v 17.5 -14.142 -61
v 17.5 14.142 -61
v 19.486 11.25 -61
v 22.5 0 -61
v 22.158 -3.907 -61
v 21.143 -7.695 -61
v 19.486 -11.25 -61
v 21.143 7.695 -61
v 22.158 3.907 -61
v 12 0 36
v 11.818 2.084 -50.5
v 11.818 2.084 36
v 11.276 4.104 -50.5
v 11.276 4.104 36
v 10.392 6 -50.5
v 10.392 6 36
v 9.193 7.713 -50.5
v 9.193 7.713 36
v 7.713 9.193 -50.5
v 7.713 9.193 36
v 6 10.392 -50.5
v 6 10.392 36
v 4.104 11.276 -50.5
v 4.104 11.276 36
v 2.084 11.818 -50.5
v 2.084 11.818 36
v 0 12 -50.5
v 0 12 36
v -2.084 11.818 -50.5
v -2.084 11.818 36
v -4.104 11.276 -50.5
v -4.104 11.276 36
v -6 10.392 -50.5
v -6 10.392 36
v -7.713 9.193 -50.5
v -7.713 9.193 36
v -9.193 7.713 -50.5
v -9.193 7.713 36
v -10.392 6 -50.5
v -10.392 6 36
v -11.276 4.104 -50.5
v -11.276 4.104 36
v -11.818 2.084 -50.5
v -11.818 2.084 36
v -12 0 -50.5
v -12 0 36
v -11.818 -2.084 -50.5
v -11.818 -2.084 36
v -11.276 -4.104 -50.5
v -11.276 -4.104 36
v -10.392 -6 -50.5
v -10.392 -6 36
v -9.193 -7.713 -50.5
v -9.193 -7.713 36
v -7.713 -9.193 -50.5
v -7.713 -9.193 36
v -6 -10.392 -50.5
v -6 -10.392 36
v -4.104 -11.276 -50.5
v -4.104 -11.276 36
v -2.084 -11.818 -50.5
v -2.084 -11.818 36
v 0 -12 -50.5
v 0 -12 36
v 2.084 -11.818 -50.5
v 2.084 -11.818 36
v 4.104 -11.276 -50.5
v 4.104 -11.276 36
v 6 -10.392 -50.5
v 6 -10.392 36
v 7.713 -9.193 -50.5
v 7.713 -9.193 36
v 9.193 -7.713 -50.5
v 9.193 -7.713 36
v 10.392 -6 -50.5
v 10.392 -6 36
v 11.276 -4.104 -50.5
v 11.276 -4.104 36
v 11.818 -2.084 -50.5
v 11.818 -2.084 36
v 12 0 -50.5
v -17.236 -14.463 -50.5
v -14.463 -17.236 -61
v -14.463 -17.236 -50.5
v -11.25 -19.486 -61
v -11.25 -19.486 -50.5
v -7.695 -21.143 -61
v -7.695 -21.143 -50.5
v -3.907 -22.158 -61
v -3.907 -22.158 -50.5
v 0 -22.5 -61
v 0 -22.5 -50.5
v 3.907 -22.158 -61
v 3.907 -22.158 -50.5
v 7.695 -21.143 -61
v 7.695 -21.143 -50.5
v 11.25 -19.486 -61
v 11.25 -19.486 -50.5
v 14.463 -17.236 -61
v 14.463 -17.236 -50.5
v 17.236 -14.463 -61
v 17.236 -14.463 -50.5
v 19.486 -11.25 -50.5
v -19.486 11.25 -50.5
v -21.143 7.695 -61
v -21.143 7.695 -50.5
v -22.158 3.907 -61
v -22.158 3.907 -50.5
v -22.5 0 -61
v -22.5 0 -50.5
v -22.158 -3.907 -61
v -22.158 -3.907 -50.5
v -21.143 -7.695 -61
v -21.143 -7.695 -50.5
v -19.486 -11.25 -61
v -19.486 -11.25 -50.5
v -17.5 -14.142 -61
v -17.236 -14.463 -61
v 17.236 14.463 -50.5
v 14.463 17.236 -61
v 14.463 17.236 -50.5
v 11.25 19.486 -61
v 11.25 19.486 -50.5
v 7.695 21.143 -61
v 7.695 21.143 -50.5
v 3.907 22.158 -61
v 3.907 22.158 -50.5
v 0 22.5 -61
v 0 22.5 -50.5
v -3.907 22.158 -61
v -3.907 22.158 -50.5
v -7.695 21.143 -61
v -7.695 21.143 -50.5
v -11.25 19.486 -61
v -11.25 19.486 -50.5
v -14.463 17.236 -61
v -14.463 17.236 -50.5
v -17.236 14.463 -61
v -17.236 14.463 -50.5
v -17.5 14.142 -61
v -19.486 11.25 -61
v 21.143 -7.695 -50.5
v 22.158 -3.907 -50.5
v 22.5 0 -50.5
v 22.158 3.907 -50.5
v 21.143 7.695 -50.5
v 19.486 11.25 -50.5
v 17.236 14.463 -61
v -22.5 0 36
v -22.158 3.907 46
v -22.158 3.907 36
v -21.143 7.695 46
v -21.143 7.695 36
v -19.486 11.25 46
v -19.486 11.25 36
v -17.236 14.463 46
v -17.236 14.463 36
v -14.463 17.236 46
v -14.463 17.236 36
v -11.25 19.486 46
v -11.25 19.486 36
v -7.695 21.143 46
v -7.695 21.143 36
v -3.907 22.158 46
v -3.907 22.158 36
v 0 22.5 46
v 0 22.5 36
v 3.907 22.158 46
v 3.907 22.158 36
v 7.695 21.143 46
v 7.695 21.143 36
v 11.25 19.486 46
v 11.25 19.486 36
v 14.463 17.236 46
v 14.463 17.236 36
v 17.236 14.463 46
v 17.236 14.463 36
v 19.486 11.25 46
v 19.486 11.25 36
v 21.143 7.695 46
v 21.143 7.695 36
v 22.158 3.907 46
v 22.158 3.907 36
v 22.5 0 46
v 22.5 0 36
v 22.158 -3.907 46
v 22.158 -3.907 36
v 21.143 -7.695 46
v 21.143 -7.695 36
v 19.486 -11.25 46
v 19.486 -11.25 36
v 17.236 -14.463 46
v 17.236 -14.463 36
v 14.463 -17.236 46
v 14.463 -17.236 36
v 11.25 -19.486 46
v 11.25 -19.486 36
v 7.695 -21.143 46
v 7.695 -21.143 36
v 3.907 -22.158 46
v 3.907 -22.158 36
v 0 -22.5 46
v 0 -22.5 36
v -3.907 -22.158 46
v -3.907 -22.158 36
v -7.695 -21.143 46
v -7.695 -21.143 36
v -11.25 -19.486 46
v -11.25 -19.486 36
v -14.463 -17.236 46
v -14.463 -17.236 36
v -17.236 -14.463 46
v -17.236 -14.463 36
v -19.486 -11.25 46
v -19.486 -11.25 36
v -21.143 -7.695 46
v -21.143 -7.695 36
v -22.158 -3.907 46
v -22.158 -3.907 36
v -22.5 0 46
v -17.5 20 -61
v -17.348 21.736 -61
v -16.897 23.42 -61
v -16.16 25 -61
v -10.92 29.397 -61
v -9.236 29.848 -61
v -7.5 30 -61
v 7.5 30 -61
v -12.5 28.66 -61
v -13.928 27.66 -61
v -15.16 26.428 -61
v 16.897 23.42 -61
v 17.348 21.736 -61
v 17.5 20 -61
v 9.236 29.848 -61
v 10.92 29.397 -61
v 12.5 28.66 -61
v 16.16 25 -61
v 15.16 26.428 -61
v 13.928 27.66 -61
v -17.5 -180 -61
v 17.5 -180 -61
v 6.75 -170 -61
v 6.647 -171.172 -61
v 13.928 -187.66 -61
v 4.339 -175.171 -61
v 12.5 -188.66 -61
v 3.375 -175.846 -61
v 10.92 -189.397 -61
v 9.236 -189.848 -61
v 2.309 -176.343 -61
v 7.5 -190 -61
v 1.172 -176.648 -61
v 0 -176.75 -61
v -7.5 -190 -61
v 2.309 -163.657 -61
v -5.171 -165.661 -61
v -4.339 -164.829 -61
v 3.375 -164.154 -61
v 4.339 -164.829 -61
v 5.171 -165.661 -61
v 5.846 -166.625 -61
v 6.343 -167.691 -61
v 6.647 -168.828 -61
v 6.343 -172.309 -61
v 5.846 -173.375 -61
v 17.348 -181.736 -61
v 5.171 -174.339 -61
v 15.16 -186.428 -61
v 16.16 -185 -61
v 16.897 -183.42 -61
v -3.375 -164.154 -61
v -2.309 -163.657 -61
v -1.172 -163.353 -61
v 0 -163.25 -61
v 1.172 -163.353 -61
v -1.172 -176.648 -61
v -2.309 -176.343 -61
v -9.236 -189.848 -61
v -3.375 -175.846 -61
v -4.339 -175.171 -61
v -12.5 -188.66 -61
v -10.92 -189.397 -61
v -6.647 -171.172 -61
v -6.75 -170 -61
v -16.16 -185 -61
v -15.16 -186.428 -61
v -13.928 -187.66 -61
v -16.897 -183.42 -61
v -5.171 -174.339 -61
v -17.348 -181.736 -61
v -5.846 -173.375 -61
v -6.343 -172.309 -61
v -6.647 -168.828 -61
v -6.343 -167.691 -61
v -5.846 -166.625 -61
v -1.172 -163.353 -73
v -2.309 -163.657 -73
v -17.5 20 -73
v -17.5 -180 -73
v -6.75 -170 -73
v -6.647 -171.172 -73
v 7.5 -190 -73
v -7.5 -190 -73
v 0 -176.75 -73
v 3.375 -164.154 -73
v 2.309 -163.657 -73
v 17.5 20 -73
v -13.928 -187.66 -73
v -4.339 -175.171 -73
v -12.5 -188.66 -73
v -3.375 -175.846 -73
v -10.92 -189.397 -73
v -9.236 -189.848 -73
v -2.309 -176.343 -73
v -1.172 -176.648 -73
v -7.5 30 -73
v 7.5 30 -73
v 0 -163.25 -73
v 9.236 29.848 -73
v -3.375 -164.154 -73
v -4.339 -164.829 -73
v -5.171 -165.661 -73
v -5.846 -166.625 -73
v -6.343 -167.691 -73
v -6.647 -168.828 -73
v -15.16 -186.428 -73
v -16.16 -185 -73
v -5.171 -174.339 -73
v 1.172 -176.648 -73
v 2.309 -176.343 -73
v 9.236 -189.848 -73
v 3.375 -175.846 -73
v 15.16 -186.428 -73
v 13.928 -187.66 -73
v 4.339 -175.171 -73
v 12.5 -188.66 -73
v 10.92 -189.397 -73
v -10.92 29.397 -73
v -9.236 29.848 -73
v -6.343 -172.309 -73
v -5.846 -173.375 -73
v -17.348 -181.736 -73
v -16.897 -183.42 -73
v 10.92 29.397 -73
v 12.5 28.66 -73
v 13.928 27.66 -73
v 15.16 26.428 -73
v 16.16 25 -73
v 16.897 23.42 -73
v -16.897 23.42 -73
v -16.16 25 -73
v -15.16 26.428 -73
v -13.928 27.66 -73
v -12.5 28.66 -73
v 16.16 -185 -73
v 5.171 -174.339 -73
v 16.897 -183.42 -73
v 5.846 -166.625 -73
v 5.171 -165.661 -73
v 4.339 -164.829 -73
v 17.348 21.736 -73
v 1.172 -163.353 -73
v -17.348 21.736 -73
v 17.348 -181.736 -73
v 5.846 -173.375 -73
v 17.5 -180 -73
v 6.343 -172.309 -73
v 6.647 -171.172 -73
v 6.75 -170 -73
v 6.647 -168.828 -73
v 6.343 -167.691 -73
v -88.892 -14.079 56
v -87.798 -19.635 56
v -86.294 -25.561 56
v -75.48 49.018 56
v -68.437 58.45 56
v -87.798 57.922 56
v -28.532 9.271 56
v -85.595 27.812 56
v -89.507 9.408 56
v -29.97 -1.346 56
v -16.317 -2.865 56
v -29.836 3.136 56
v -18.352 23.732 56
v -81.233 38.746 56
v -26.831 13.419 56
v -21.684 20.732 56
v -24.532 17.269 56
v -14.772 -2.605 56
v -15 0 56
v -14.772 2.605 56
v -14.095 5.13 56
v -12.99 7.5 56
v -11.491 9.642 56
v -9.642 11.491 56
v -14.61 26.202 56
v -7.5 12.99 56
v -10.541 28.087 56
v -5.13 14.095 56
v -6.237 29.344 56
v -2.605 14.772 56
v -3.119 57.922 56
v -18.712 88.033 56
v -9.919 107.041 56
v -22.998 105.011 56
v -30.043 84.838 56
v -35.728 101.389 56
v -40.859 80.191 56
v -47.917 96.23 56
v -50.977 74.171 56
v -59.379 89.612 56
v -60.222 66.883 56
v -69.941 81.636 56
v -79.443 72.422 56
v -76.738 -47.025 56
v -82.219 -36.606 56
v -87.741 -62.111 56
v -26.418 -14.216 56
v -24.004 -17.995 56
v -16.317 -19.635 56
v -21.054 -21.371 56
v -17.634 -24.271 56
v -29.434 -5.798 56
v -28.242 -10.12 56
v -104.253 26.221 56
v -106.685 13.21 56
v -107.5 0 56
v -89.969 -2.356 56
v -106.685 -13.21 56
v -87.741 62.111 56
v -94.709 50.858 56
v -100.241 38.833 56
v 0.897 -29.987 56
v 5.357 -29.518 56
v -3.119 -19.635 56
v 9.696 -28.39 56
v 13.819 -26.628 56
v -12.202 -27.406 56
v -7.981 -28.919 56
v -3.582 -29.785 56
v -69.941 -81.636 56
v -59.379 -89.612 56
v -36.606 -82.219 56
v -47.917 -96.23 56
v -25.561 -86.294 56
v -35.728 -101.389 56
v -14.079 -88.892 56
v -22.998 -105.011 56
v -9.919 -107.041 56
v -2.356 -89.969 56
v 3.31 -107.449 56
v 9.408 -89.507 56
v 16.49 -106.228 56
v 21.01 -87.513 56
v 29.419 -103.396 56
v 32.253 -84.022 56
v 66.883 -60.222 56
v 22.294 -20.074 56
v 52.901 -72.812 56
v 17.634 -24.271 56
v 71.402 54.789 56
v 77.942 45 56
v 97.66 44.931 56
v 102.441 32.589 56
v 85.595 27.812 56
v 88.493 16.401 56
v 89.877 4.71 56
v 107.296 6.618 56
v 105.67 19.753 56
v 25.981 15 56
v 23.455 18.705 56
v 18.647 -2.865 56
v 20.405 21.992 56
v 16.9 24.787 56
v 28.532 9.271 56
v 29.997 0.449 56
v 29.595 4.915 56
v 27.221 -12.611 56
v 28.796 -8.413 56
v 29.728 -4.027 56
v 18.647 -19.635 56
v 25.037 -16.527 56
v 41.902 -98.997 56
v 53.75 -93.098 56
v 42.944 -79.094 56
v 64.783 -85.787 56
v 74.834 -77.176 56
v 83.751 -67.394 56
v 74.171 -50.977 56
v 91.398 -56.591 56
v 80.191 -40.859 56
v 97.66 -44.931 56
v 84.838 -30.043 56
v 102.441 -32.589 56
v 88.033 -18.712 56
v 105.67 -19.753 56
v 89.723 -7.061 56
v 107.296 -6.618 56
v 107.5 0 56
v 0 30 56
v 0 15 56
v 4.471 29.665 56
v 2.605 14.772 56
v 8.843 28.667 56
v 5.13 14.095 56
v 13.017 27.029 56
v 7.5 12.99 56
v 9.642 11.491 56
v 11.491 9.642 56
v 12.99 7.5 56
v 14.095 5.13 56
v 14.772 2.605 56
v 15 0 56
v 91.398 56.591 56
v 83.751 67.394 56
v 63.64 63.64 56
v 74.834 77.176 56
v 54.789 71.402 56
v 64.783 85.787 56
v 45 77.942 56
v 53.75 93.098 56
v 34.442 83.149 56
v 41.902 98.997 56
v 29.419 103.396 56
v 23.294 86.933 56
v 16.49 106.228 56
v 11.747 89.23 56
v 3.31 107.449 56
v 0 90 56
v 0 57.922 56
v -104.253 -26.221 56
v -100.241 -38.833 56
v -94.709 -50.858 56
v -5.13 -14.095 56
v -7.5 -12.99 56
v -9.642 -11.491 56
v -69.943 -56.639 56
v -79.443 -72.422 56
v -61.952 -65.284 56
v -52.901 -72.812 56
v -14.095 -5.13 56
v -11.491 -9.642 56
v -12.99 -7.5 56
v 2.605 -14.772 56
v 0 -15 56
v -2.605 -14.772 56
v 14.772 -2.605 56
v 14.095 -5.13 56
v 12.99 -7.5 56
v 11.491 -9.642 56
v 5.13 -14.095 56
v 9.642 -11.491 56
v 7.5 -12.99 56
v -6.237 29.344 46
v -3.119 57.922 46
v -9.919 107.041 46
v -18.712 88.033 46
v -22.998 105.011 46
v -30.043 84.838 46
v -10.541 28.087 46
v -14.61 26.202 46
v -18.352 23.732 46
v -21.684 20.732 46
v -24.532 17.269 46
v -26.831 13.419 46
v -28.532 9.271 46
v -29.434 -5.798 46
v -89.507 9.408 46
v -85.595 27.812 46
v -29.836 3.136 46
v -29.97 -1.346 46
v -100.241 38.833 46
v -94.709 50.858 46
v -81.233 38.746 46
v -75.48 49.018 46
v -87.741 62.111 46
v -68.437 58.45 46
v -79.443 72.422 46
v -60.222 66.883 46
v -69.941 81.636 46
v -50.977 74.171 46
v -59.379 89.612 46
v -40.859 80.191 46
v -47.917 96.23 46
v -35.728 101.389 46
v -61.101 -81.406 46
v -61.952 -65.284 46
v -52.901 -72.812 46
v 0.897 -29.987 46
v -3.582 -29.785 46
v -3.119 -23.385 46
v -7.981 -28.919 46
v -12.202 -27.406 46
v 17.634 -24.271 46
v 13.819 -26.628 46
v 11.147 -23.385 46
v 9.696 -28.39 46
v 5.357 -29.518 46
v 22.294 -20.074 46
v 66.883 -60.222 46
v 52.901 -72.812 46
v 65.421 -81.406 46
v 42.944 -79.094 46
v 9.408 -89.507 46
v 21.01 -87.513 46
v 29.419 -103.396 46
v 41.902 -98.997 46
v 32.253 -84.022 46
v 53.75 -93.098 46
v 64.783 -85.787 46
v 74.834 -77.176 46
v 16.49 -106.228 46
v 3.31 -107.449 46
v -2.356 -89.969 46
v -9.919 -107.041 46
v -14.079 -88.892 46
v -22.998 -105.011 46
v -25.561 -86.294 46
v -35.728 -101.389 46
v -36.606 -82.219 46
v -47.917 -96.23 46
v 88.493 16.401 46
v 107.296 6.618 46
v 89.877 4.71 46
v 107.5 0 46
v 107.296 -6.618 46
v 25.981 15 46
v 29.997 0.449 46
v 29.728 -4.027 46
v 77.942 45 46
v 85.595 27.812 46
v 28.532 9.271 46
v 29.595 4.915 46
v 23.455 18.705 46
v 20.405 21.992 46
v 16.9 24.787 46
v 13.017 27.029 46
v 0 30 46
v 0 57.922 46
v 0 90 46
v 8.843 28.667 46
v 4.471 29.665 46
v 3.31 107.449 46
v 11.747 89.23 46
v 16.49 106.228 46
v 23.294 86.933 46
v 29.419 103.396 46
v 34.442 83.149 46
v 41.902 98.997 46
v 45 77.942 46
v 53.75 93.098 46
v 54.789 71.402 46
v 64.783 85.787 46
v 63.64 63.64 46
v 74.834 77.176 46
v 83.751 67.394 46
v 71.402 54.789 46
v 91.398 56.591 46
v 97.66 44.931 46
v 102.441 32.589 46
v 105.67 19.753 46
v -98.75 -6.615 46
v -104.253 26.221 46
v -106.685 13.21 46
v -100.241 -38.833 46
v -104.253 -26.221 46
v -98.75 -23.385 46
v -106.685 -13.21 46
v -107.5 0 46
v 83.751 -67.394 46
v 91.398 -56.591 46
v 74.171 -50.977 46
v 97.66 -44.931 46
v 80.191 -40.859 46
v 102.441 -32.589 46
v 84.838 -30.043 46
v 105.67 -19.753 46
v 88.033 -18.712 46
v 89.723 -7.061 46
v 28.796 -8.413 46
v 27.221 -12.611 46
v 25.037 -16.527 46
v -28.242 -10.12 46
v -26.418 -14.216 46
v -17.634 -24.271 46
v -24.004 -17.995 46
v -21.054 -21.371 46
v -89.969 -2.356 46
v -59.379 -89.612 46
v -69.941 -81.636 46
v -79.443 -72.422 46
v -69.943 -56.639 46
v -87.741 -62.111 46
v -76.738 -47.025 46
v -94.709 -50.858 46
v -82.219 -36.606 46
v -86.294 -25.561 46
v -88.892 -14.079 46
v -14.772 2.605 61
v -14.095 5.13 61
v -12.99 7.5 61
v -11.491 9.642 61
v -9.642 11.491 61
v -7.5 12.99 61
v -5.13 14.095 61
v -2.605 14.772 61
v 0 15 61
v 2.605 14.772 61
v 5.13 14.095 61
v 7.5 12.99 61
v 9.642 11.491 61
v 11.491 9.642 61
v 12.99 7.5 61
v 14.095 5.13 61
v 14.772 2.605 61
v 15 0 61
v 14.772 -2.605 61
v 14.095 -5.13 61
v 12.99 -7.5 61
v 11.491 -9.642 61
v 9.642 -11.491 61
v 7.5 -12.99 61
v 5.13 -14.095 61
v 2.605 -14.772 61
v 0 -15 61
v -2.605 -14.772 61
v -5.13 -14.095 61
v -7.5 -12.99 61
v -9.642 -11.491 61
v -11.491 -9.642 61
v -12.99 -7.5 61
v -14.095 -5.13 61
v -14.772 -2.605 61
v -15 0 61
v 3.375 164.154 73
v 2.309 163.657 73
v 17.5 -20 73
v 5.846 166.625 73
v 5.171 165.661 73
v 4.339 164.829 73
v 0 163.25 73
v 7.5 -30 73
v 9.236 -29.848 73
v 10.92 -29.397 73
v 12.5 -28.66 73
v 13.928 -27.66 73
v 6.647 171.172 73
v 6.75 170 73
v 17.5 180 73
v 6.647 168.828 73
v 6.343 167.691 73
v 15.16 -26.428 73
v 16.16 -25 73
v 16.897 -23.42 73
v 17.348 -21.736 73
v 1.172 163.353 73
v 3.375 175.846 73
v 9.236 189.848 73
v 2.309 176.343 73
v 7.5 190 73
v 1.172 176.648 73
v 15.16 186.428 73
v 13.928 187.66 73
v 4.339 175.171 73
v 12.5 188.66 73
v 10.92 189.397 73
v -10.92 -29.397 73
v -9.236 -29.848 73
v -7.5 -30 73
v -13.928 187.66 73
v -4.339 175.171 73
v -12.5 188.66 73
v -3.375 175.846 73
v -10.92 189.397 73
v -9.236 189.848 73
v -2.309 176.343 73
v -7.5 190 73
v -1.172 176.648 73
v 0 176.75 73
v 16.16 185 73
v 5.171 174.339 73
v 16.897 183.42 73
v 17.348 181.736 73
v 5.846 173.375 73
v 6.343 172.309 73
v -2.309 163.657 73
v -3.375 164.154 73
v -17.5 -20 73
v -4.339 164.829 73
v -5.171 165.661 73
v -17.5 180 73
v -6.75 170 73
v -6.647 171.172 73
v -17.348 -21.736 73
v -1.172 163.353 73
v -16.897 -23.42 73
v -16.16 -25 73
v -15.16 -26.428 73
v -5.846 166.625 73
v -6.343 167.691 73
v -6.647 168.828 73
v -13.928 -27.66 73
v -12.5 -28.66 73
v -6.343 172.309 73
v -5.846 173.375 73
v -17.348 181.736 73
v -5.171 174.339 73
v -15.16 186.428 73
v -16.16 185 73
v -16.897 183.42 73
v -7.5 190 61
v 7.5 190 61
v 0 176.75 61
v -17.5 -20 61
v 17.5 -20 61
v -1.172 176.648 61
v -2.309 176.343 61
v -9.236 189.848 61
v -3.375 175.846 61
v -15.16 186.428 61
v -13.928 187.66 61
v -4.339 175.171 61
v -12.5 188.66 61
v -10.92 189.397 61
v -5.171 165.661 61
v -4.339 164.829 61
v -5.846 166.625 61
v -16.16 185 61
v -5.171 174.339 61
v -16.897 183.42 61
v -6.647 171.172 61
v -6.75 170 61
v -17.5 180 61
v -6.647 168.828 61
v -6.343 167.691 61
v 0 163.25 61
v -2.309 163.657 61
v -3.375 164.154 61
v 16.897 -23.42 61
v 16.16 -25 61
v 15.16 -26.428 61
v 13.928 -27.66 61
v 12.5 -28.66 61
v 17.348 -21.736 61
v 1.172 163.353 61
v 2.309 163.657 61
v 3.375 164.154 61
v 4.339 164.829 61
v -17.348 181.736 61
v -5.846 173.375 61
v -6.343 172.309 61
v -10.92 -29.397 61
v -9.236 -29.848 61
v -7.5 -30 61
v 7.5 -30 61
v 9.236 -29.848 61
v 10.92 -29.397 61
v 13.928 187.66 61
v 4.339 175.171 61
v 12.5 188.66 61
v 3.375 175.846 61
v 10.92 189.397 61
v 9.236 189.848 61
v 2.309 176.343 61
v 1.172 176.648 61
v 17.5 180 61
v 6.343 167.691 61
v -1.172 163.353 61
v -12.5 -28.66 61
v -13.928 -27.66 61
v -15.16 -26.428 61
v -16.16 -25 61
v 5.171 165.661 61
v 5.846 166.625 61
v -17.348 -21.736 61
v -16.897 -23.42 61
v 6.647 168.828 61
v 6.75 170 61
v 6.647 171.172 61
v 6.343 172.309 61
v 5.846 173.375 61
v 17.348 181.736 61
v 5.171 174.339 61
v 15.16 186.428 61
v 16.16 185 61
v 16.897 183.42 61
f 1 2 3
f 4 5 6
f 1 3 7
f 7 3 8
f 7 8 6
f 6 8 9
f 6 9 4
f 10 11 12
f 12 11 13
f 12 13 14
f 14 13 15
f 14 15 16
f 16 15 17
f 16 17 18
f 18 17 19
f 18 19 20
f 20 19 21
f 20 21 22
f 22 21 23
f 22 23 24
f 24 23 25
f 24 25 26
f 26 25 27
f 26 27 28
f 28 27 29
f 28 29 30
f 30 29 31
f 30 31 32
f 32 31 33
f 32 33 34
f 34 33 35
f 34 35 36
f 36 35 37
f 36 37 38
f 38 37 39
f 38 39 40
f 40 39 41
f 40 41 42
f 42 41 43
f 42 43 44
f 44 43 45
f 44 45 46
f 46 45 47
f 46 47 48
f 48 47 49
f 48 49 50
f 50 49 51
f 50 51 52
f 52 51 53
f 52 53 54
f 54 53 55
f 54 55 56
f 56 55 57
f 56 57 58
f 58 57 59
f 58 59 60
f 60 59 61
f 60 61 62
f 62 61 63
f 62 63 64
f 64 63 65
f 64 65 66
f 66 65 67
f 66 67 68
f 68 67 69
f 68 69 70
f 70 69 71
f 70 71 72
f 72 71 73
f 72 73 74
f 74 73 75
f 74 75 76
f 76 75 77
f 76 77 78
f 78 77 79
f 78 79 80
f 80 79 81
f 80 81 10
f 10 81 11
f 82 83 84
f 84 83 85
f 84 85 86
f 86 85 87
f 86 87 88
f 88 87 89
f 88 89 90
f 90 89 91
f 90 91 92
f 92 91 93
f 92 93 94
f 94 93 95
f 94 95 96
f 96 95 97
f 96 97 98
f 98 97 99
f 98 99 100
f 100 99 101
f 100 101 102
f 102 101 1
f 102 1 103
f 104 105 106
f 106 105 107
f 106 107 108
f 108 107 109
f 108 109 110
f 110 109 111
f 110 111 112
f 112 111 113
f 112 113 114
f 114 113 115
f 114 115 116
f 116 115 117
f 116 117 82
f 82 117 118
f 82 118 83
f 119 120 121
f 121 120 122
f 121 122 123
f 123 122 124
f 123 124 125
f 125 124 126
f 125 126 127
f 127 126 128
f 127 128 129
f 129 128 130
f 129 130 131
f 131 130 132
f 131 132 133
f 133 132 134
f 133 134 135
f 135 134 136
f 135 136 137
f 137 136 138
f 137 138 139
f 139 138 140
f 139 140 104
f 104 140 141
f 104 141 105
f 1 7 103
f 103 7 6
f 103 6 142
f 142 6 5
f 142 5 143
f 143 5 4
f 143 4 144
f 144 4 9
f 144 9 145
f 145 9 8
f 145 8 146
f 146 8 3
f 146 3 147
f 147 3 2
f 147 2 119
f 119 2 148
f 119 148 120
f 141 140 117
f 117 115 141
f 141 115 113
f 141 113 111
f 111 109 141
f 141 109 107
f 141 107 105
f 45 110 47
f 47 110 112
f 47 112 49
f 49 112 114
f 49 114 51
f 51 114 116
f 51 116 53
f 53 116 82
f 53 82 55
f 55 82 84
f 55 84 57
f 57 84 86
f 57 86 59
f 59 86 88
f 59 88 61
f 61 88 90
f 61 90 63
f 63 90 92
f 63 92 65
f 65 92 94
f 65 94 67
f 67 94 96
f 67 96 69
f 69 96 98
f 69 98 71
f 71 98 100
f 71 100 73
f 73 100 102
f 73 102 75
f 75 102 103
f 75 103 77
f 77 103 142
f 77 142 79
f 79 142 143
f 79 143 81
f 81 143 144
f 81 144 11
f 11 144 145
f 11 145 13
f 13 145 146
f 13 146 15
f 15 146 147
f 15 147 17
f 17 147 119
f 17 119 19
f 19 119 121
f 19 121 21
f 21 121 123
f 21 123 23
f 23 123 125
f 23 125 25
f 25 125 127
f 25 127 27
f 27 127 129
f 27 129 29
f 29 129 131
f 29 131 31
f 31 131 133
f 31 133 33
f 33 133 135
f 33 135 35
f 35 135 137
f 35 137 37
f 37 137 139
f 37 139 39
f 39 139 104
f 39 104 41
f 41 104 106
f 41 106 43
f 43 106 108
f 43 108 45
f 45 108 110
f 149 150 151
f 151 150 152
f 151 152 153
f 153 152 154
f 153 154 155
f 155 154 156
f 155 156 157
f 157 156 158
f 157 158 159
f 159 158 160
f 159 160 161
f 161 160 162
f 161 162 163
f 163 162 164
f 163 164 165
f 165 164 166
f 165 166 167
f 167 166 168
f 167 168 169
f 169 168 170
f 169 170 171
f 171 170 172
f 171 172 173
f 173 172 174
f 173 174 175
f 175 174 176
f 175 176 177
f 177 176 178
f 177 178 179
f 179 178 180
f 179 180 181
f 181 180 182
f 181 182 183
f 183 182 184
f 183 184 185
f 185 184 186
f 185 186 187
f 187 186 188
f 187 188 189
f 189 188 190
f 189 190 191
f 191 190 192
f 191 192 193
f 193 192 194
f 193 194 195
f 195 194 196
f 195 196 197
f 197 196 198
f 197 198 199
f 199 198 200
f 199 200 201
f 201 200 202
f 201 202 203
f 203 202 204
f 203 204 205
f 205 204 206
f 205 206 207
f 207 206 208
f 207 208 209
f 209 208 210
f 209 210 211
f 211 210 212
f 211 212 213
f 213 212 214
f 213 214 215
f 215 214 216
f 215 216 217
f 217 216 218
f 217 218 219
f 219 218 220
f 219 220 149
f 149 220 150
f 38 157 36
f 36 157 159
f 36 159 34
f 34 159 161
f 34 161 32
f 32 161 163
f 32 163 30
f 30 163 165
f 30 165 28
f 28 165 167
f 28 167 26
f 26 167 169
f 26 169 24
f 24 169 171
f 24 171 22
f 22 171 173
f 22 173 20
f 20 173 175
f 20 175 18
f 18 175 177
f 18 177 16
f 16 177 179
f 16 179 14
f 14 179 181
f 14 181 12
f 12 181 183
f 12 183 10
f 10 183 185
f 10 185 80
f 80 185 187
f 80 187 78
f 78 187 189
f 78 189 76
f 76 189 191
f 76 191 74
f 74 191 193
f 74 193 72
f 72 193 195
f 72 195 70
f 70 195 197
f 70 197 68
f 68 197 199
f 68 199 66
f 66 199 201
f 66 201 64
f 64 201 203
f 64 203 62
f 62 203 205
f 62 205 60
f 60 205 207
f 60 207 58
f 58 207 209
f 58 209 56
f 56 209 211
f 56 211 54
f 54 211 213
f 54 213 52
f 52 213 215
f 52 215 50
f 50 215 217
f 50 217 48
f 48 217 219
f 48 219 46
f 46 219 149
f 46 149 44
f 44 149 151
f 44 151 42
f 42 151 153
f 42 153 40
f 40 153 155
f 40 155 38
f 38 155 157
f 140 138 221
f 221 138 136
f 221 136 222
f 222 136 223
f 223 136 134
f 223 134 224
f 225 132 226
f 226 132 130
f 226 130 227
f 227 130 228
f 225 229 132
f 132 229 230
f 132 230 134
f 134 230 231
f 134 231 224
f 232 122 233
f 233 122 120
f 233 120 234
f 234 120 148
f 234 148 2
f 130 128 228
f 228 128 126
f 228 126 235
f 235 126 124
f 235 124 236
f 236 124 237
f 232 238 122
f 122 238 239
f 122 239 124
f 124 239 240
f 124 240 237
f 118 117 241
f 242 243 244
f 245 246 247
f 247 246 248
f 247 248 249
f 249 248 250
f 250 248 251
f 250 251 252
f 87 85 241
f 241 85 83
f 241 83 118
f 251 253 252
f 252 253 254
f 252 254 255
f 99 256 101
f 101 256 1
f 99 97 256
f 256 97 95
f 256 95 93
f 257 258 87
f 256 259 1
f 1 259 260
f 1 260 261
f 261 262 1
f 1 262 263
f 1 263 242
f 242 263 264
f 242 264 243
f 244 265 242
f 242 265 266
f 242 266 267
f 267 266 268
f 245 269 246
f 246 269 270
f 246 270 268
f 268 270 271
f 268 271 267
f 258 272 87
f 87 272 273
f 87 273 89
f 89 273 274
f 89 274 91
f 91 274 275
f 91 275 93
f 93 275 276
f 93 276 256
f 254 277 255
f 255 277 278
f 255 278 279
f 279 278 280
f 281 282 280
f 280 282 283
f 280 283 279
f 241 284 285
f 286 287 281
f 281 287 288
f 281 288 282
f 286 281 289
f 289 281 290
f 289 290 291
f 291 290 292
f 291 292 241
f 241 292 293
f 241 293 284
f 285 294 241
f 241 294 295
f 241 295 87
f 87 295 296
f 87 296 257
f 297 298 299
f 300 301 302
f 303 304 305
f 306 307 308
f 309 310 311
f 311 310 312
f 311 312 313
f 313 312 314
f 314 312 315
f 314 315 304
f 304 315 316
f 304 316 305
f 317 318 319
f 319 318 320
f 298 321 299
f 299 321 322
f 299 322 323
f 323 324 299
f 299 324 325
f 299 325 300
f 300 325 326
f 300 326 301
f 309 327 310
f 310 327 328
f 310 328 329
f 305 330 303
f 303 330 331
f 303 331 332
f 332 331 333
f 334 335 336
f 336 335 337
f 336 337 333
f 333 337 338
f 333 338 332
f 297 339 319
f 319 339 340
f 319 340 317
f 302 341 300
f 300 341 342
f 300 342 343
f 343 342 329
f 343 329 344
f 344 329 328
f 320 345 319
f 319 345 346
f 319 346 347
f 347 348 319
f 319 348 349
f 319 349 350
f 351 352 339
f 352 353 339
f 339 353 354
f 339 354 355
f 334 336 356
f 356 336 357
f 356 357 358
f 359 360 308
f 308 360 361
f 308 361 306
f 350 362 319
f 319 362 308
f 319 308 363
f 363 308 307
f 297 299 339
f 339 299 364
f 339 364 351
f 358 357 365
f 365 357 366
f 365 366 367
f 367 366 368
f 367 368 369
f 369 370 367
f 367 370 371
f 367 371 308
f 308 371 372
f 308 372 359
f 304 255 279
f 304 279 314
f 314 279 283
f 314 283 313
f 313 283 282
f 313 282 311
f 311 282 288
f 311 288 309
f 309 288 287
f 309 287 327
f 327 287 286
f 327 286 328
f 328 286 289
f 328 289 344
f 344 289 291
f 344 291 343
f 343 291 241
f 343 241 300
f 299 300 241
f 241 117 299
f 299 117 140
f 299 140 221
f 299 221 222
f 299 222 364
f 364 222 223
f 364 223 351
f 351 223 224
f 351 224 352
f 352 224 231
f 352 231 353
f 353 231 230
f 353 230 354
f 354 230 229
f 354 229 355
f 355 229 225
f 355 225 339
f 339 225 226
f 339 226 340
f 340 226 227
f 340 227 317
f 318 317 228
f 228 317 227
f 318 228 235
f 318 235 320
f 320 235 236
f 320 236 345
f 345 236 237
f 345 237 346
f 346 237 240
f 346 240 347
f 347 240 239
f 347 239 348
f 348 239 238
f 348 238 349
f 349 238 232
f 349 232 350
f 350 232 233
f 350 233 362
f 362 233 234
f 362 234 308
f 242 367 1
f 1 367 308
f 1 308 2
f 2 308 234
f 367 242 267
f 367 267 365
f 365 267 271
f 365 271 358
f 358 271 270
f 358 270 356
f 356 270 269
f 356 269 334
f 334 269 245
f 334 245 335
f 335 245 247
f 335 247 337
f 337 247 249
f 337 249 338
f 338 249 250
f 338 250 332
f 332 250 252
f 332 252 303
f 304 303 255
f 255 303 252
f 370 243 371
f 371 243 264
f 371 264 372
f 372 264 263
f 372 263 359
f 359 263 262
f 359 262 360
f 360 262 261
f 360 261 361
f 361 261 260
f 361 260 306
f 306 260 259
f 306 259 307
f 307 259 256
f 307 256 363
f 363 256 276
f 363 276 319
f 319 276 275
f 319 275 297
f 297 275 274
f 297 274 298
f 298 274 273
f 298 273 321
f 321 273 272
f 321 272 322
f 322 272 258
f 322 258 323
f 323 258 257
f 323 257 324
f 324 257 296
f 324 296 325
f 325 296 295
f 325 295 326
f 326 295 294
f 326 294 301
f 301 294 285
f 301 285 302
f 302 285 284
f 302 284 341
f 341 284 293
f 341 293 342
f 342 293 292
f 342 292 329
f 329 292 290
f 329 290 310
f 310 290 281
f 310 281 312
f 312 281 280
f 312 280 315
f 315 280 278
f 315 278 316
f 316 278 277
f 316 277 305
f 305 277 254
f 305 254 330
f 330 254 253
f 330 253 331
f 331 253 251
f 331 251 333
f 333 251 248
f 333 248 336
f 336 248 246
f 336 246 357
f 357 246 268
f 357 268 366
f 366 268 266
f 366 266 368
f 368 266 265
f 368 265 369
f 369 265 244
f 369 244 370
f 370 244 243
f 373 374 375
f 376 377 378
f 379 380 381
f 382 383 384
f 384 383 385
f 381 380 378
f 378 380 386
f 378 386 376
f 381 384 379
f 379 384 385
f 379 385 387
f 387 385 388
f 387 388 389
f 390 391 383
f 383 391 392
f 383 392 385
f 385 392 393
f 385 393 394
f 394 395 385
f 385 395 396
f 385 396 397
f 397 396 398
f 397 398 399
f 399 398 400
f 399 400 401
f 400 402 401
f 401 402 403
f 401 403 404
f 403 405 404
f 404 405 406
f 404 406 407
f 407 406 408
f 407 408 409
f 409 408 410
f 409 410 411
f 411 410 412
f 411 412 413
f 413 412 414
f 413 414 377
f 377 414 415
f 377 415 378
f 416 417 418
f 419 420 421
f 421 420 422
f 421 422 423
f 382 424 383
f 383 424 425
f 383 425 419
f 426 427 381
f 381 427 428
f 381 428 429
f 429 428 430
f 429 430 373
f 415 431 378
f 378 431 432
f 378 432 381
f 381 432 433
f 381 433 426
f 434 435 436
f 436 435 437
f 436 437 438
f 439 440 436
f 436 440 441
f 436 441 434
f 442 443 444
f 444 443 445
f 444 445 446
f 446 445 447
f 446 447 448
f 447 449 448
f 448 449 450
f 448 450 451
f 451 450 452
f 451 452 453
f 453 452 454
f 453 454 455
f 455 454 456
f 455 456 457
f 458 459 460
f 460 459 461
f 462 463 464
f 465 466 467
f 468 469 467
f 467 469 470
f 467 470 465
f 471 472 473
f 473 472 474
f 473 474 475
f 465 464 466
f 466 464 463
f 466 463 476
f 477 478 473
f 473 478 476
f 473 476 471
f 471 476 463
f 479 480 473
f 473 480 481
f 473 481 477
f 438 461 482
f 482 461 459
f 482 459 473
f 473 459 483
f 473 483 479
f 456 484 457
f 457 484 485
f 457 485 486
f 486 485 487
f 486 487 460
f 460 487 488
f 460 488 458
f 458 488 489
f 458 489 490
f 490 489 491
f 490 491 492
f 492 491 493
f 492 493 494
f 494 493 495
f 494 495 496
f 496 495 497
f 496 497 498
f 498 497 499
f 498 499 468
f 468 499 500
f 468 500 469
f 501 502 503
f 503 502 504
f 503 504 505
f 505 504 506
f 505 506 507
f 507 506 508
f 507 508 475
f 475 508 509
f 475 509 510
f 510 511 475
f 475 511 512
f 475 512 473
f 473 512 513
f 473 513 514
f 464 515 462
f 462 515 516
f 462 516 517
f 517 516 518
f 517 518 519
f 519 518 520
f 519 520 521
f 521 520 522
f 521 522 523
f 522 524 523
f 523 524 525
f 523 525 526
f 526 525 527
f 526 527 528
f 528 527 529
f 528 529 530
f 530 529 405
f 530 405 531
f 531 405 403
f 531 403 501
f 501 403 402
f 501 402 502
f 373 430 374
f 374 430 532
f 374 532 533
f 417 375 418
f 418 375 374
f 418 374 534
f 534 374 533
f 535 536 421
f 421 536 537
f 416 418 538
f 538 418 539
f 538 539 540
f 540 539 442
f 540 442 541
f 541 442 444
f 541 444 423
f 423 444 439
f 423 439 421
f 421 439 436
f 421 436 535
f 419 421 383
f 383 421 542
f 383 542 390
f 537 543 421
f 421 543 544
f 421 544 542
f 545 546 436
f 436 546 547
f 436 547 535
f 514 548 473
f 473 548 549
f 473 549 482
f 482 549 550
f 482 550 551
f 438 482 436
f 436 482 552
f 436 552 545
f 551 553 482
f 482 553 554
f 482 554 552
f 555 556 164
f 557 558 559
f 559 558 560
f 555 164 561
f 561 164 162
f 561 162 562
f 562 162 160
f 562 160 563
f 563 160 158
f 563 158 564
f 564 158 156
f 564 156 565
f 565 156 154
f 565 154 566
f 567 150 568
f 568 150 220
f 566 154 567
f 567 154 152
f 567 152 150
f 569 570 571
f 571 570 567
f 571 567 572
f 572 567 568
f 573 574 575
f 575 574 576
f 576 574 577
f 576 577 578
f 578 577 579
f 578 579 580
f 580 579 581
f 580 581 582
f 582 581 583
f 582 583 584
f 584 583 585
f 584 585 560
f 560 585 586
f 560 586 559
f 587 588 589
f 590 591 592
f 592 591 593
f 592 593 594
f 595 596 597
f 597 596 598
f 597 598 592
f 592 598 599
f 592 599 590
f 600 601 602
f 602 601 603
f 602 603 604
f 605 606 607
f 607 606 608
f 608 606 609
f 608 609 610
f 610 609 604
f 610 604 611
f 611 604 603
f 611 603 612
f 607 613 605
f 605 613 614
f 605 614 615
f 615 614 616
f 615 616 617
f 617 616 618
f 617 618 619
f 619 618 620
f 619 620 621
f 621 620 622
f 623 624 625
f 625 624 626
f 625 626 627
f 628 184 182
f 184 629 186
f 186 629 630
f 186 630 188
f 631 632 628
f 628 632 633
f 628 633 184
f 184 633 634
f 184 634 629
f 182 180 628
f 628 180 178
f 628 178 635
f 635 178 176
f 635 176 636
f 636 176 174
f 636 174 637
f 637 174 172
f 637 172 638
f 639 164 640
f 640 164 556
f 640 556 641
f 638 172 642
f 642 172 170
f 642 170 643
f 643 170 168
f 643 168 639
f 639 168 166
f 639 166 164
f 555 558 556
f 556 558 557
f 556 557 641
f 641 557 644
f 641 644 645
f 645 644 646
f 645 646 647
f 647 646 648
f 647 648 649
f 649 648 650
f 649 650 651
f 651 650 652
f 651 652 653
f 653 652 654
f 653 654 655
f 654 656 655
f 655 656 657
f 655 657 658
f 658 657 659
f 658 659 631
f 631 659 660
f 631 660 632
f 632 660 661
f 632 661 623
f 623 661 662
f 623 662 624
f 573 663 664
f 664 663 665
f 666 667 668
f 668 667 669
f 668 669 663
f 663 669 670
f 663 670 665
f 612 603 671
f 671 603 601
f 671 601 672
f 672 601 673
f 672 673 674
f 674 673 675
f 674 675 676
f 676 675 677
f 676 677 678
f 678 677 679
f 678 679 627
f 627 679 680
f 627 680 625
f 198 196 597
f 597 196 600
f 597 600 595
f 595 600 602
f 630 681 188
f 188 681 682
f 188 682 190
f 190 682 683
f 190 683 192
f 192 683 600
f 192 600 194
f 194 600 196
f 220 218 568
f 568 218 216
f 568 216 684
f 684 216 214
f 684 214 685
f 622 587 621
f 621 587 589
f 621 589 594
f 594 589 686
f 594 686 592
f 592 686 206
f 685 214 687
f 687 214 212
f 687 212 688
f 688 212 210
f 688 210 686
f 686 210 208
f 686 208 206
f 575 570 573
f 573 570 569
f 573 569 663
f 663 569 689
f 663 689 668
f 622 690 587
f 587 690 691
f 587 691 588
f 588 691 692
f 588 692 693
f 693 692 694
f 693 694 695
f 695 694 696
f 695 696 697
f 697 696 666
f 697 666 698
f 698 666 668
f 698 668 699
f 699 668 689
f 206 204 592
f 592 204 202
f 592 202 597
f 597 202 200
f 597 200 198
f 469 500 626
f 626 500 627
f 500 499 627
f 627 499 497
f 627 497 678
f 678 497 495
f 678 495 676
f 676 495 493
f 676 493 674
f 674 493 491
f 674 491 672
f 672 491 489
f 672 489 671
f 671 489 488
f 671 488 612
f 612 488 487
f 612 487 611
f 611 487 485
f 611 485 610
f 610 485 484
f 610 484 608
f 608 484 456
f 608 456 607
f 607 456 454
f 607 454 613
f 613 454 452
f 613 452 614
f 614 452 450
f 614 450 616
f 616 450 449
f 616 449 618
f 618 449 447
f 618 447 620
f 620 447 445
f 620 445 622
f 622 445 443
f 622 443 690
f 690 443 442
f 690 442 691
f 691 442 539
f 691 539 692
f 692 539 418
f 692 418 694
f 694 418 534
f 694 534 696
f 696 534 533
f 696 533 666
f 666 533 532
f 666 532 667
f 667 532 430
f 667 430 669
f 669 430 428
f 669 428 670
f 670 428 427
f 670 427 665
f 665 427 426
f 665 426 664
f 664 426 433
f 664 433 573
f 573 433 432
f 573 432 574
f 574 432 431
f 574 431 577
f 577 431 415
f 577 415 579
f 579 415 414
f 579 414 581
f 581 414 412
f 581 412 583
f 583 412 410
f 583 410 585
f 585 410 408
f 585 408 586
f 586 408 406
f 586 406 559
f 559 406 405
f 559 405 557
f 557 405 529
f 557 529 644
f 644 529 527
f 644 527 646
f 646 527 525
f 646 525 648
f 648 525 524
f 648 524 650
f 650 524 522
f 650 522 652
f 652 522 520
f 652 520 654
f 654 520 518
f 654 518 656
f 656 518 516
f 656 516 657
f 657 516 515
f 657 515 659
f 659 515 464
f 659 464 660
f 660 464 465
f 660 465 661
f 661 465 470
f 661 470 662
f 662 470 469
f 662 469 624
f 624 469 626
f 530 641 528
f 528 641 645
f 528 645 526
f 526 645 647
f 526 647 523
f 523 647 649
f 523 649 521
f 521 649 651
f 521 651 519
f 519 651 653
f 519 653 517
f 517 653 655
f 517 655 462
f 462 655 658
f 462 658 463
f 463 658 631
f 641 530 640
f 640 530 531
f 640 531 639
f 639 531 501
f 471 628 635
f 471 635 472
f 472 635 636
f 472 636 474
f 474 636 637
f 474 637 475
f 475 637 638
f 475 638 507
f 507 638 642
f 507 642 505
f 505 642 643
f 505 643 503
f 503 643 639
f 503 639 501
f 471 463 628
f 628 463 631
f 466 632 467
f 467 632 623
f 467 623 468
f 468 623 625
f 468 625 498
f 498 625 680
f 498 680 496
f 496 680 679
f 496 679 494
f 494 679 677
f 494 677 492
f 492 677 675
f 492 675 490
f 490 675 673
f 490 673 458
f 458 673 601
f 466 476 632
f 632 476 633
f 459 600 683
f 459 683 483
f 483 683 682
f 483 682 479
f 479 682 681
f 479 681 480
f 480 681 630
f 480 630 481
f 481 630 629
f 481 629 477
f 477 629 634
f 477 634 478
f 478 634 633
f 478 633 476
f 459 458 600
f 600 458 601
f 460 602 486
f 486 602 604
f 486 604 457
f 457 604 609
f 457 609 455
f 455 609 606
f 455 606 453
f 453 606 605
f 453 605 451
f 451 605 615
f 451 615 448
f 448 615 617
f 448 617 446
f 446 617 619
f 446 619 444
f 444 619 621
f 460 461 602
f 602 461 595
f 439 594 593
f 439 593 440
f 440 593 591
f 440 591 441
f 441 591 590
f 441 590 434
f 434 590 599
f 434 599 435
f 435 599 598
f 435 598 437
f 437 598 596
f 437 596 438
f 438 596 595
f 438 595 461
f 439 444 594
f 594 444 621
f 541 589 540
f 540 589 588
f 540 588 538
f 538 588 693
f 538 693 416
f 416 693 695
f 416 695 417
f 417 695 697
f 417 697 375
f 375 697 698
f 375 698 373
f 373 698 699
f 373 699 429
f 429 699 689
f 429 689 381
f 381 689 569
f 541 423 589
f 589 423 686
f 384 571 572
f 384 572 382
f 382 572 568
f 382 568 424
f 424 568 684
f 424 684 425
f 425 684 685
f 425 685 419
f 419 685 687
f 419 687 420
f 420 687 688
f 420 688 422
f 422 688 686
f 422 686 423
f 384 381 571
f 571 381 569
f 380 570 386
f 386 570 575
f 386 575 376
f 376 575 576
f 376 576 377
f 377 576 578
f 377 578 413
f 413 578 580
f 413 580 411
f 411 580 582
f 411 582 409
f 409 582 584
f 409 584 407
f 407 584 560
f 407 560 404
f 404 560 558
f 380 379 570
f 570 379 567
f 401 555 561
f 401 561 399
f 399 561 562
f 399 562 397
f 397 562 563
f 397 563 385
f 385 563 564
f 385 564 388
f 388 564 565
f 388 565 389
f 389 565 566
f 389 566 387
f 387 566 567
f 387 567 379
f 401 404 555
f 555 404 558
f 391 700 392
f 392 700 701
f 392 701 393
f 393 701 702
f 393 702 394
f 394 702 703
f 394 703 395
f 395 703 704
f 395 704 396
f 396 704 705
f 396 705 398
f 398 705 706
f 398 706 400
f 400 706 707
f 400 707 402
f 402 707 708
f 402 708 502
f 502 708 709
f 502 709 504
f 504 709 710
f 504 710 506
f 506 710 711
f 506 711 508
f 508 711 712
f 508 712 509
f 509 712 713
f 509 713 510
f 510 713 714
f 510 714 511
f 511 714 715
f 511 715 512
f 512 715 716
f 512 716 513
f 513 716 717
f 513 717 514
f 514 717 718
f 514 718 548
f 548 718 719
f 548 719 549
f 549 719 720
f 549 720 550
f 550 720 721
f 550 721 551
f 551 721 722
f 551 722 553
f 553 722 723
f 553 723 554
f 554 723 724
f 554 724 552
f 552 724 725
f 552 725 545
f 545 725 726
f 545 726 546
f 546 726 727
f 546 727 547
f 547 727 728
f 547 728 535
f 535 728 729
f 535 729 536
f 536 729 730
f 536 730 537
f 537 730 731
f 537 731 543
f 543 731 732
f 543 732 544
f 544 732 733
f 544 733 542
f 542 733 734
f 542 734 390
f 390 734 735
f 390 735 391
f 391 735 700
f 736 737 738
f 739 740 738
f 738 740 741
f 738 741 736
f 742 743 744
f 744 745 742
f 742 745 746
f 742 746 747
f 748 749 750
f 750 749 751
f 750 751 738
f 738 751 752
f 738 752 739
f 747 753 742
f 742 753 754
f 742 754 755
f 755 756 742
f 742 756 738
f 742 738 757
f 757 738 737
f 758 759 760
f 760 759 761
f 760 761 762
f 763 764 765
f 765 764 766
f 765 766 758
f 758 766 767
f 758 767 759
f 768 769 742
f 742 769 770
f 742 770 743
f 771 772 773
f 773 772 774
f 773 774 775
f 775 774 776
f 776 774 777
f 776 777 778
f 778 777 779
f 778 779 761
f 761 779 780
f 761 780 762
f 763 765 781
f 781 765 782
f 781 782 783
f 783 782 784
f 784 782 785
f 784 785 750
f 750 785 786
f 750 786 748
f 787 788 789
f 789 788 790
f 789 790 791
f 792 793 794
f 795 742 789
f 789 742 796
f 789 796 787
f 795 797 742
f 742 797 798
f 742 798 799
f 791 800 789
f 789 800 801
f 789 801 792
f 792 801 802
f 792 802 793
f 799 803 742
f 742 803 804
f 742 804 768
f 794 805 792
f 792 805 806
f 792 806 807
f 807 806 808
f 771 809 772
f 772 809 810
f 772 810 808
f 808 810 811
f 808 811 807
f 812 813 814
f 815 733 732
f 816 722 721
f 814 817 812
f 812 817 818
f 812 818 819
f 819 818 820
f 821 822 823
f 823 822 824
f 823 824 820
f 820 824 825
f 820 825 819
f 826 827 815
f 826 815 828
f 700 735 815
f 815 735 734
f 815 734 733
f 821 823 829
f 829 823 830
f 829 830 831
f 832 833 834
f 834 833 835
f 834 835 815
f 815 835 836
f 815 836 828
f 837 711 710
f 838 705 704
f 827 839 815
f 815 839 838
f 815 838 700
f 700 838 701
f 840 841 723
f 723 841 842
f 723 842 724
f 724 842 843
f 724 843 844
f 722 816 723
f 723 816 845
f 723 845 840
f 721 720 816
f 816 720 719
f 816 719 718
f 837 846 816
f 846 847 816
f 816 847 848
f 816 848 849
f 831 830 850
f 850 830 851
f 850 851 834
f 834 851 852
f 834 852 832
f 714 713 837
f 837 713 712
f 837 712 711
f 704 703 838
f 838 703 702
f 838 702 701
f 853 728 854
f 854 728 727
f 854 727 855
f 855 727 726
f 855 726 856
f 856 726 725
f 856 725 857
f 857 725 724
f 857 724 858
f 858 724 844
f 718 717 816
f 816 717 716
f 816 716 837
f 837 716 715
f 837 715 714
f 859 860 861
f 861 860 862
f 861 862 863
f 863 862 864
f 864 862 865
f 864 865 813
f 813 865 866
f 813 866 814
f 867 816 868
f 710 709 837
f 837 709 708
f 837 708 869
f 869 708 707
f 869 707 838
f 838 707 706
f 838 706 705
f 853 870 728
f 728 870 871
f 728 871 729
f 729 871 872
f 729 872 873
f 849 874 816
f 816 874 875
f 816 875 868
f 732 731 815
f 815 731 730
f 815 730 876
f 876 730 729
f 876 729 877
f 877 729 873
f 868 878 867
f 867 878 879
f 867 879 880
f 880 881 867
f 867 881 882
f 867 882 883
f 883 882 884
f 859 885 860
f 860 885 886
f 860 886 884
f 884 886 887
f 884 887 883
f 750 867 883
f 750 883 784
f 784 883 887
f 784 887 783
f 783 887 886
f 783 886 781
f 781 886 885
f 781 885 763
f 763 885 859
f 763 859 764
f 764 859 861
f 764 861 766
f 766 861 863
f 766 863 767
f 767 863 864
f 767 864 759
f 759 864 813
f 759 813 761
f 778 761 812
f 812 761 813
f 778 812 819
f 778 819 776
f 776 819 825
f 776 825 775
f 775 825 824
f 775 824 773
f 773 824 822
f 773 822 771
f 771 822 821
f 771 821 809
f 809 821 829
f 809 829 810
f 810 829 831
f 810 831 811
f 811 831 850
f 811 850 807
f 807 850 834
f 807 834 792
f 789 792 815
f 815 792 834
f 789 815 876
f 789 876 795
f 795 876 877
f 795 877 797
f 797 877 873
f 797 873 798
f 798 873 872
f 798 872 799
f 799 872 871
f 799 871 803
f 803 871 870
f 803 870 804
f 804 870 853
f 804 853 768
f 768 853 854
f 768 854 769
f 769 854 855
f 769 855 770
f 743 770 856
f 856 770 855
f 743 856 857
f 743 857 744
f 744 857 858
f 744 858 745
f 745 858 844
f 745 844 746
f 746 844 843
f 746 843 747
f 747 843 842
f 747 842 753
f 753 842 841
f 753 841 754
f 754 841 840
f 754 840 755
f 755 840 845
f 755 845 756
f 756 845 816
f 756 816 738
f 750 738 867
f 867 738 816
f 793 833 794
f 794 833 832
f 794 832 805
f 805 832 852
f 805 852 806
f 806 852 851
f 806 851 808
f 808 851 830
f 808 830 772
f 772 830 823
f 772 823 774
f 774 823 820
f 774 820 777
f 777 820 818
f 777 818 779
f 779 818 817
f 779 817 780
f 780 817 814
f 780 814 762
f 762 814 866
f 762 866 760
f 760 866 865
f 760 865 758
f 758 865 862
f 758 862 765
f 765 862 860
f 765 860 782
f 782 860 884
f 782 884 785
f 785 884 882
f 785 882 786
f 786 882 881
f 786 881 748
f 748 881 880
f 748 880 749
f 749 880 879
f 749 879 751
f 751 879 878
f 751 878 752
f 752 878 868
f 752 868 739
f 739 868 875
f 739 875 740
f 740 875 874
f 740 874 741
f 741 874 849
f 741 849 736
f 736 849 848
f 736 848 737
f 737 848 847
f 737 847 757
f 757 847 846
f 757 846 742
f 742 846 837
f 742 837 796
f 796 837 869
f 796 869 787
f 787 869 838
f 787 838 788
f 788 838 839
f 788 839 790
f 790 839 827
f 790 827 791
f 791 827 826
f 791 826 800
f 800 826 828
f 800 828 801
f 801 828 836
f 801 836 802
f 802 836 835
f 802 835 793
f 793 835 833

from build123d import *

# Parameters (mm, degrees)
BOSS_EXTRUDE1_DEPTH      = 36
BOSS_EXTRUDE1_DEPTH_BACK = 50.5
SKETCH1_R                = 12
SKETCH6_R                = 22.5
BOSS_EXTRUDE6_DEPTH      = 10.5
BOSS_EXTRUDE7_START      = 10
SKETCH7_R                = 22.5
BOSS_EXTRUDE7_DEPTH      = 10
SKETCH2_R                = 6.75
BOSS_EXTRUDE2_DEPTH      = 12
SKETCH3_R                = 107.5
BOSS_EXTRUDE3_DEPTH      = 10
SKETCH5_R                = 15
BOSS_EXTRUDE5_DEPTH      = 5
SKETCH4_R                = 6.75
BOSS_EXTRUDE4_DEPTH      = 12


with BuildPart() as part:
    # Sketch1 → Boss-Extrude1 (new, two sides: drawn at the far end of the back side and taken through both)
    with BuildSketch(Plane.XY.offset(-BOSS_EXTRUDE1_DEPTH_BACK)):
        Circle(SKETCH1_R)
    extrude(amount=BOSS_EXTRUDE1_DEPTH + BOSS_EXTRUDE1_DEPTH_BACK)

    # Sketch6 → Boss-Extrude6 (add)
    with BuildSketch(Plane(origin=(0, 0, -50.5), x_dir=(-1, 0, 0), z_dir=(0, 0, -1))):
        with Locations(Location((0, 0, 0), (0, 0, 180))):
            Circle(SKETCH6_R)
    extrude(amount=BOSS_EXTRUDE6_DEPTH)

    # Sketch7 → Boss-Extrude7 (add)
    with BuildSketch(Plane.XY.offset(36).offset(BOSS_EXTRUDE7_START)):
        Circle(SKETCH7_R)
    extrude(amount=-BOSS_EXTRUDE7_DEPTH)

    # Sketch2 → Boss-Extrude2 (add)
    with BuildSketch(Plane(origin=(0, 0, -61), x_dir=(-1, 0, 0), z_dir=(0, 0, -1))):
        with BuildLine():
            Line((-7.5, -190), (7.5, -190))
            ThreePointArc((7.5, -190), (14.571067812, -187.071067812), (17.5, -180))
            Line((17.5, -180), (17.5, 20))
            ThreePointArc((17.5, 20), (14.571067812, 27.071067812), (7.5, 30))
            Line((7.5, 30), (-7.5, 30))
            ThreePointArc((-7.5, 30), (-14.571067812, 27.071067812), (-17.5, 20))
            Line((-17.5, 20), (-17.5, -180))
            ThreePointArc((-17.5, -180), (-14.571067812, -187.071067812), (-7.5, -190))
        make_face()
        with Locations((0, -170)):
            Circle(SKETCH2_R, mode=Mode.SUBTRACT)
    extrude(amount=BOSS_EXTRUDE2_DEPTH)

    # Sketch3 → Boss-Extrude3 (add)
    with BuildSketch(Plane.XY.offset(46)):
        Circle(SKETCH3_R)
        with BuildLine():
            Line((0, 30), (0, 90))
            ThreePointArc((0, 90), (45, 77.942286341), (77.942286341, 45))
            Line((77.942286341, 45), (25.980762114, 15))
            ThreePointArc((25.980762114, 15), (15, 25.980762114), (0, 30))
        make_face(mode=Mode.SUBTRACT)
        with BuildLine():
            Line((28.531695489, 9.270509831), (85.595086467, 27.811529494))
            ThreePointArc((85.595086467, 27.811529494), (88.033284066, -18.712052174), (66.883034293, -60.221754572))
            Line((66.883034293, -60.221754572), (22.294344764, -20.073918191))
            ThreePointArc((22.294344764, -20.073918191), (29.344428022, -6.237350725), (28.531695489, 9.270509831))
        make_face(mode=Mode.SUBTRACT)
        with BuildLine():
            Line((17.633557569, -24.270509831), (52.900672706, -72.811529494))
            ThreePointArc((52.900672706, -72.811529494), (9.407561694, -89.506970583), (-36.606297877, -82.219091188))
            Line((-36.606297877, -82.219091188), (-12.202099292, -27.406363729))
            ThreePointArc((-12.202099292, -27.406363729), (3.135853898, -29.835656861), (17.633557569, -24.270509831))
        make_face(mode=Mode.SUBTRACT)
        with BuildLine():
            Line((-17.633557569, -24.270509831), (-52.900672706, -72.811529494))
            ThreePointArc((-52.900672706, -72.811529494), (-82.219091188, -36.606297877), (-89.506970583, 9.407561694))
            Line((-89.506970583, 9.407561694), (-29.835656861, 3.135853898))
            ThreePointArc((-29.835656861, 3.135853898), (-27.406363729, -12.202099292), (-17.633557569, -24.270509831))
        make_face(mode=Mode.SUBTRACT)
        with BuildLine():
            Line((-28.531695489, 9.270509831), (-85.595086467, 27.811529494))
            ThreePointArc((-85.595086467, 27.811529494), (-60.221754572, 66.883034293), (-18.712052174, 88.033284066))
            Line((-18.712052174, 88.033284066), (-6.237350725, 29.344428022))
            ThreePointArc((-6.237350725, 29.344428022), (-20.073918191, 22.294344764), (-28.531695489, 9.270509831))
        make_face(mode=Mode.SUBTRACT)
    extrude(amount=BOSS_EXTRUDE3_DEPTH)

    # Sketch5 → Boss-Extrude5 (add)
    with BuildSketch(Plane.XY.offset(56)):
        Circle(SKETCH5_R)
    extrude(amount=BOSS_EXTRUDE5_DEPTH)

    # Sketch4 → Boss-Extrude4 (add)
    with BuildSketch(Plane.XY.offset(61)):
        with BuildLine():
            Line((-7.5, -30), (7.5, -30))
            ThreePointArc((7.5, -30), (14.571067812, -27.071067812), (17.5, -20))
            Line((17.5, -20), (17.5, 180))
            ThreePointArc((17.5, 180), (14.571067812, 187.071067812), (7.5, 190))
            Line((7.5, 190), (-7.5, 190))
            ThreePointArc((-7.5, 190), (-14.571067812, 187.071067812), (-17.5, 180))
            Line((-17.5, 180), (-17.5, -20))
            ThreePointArc((-17.5, -20), (-14.571067812, -27.071067812), (-7.5, -30))
        make_face()
        with Locations((0, 170)):
            Circle(SKETCH4_R, mode=Mode.SUBTRACT)
    extrude(amount=BOSS_EXTRUDE4_DEPTH)


solid = part.part
